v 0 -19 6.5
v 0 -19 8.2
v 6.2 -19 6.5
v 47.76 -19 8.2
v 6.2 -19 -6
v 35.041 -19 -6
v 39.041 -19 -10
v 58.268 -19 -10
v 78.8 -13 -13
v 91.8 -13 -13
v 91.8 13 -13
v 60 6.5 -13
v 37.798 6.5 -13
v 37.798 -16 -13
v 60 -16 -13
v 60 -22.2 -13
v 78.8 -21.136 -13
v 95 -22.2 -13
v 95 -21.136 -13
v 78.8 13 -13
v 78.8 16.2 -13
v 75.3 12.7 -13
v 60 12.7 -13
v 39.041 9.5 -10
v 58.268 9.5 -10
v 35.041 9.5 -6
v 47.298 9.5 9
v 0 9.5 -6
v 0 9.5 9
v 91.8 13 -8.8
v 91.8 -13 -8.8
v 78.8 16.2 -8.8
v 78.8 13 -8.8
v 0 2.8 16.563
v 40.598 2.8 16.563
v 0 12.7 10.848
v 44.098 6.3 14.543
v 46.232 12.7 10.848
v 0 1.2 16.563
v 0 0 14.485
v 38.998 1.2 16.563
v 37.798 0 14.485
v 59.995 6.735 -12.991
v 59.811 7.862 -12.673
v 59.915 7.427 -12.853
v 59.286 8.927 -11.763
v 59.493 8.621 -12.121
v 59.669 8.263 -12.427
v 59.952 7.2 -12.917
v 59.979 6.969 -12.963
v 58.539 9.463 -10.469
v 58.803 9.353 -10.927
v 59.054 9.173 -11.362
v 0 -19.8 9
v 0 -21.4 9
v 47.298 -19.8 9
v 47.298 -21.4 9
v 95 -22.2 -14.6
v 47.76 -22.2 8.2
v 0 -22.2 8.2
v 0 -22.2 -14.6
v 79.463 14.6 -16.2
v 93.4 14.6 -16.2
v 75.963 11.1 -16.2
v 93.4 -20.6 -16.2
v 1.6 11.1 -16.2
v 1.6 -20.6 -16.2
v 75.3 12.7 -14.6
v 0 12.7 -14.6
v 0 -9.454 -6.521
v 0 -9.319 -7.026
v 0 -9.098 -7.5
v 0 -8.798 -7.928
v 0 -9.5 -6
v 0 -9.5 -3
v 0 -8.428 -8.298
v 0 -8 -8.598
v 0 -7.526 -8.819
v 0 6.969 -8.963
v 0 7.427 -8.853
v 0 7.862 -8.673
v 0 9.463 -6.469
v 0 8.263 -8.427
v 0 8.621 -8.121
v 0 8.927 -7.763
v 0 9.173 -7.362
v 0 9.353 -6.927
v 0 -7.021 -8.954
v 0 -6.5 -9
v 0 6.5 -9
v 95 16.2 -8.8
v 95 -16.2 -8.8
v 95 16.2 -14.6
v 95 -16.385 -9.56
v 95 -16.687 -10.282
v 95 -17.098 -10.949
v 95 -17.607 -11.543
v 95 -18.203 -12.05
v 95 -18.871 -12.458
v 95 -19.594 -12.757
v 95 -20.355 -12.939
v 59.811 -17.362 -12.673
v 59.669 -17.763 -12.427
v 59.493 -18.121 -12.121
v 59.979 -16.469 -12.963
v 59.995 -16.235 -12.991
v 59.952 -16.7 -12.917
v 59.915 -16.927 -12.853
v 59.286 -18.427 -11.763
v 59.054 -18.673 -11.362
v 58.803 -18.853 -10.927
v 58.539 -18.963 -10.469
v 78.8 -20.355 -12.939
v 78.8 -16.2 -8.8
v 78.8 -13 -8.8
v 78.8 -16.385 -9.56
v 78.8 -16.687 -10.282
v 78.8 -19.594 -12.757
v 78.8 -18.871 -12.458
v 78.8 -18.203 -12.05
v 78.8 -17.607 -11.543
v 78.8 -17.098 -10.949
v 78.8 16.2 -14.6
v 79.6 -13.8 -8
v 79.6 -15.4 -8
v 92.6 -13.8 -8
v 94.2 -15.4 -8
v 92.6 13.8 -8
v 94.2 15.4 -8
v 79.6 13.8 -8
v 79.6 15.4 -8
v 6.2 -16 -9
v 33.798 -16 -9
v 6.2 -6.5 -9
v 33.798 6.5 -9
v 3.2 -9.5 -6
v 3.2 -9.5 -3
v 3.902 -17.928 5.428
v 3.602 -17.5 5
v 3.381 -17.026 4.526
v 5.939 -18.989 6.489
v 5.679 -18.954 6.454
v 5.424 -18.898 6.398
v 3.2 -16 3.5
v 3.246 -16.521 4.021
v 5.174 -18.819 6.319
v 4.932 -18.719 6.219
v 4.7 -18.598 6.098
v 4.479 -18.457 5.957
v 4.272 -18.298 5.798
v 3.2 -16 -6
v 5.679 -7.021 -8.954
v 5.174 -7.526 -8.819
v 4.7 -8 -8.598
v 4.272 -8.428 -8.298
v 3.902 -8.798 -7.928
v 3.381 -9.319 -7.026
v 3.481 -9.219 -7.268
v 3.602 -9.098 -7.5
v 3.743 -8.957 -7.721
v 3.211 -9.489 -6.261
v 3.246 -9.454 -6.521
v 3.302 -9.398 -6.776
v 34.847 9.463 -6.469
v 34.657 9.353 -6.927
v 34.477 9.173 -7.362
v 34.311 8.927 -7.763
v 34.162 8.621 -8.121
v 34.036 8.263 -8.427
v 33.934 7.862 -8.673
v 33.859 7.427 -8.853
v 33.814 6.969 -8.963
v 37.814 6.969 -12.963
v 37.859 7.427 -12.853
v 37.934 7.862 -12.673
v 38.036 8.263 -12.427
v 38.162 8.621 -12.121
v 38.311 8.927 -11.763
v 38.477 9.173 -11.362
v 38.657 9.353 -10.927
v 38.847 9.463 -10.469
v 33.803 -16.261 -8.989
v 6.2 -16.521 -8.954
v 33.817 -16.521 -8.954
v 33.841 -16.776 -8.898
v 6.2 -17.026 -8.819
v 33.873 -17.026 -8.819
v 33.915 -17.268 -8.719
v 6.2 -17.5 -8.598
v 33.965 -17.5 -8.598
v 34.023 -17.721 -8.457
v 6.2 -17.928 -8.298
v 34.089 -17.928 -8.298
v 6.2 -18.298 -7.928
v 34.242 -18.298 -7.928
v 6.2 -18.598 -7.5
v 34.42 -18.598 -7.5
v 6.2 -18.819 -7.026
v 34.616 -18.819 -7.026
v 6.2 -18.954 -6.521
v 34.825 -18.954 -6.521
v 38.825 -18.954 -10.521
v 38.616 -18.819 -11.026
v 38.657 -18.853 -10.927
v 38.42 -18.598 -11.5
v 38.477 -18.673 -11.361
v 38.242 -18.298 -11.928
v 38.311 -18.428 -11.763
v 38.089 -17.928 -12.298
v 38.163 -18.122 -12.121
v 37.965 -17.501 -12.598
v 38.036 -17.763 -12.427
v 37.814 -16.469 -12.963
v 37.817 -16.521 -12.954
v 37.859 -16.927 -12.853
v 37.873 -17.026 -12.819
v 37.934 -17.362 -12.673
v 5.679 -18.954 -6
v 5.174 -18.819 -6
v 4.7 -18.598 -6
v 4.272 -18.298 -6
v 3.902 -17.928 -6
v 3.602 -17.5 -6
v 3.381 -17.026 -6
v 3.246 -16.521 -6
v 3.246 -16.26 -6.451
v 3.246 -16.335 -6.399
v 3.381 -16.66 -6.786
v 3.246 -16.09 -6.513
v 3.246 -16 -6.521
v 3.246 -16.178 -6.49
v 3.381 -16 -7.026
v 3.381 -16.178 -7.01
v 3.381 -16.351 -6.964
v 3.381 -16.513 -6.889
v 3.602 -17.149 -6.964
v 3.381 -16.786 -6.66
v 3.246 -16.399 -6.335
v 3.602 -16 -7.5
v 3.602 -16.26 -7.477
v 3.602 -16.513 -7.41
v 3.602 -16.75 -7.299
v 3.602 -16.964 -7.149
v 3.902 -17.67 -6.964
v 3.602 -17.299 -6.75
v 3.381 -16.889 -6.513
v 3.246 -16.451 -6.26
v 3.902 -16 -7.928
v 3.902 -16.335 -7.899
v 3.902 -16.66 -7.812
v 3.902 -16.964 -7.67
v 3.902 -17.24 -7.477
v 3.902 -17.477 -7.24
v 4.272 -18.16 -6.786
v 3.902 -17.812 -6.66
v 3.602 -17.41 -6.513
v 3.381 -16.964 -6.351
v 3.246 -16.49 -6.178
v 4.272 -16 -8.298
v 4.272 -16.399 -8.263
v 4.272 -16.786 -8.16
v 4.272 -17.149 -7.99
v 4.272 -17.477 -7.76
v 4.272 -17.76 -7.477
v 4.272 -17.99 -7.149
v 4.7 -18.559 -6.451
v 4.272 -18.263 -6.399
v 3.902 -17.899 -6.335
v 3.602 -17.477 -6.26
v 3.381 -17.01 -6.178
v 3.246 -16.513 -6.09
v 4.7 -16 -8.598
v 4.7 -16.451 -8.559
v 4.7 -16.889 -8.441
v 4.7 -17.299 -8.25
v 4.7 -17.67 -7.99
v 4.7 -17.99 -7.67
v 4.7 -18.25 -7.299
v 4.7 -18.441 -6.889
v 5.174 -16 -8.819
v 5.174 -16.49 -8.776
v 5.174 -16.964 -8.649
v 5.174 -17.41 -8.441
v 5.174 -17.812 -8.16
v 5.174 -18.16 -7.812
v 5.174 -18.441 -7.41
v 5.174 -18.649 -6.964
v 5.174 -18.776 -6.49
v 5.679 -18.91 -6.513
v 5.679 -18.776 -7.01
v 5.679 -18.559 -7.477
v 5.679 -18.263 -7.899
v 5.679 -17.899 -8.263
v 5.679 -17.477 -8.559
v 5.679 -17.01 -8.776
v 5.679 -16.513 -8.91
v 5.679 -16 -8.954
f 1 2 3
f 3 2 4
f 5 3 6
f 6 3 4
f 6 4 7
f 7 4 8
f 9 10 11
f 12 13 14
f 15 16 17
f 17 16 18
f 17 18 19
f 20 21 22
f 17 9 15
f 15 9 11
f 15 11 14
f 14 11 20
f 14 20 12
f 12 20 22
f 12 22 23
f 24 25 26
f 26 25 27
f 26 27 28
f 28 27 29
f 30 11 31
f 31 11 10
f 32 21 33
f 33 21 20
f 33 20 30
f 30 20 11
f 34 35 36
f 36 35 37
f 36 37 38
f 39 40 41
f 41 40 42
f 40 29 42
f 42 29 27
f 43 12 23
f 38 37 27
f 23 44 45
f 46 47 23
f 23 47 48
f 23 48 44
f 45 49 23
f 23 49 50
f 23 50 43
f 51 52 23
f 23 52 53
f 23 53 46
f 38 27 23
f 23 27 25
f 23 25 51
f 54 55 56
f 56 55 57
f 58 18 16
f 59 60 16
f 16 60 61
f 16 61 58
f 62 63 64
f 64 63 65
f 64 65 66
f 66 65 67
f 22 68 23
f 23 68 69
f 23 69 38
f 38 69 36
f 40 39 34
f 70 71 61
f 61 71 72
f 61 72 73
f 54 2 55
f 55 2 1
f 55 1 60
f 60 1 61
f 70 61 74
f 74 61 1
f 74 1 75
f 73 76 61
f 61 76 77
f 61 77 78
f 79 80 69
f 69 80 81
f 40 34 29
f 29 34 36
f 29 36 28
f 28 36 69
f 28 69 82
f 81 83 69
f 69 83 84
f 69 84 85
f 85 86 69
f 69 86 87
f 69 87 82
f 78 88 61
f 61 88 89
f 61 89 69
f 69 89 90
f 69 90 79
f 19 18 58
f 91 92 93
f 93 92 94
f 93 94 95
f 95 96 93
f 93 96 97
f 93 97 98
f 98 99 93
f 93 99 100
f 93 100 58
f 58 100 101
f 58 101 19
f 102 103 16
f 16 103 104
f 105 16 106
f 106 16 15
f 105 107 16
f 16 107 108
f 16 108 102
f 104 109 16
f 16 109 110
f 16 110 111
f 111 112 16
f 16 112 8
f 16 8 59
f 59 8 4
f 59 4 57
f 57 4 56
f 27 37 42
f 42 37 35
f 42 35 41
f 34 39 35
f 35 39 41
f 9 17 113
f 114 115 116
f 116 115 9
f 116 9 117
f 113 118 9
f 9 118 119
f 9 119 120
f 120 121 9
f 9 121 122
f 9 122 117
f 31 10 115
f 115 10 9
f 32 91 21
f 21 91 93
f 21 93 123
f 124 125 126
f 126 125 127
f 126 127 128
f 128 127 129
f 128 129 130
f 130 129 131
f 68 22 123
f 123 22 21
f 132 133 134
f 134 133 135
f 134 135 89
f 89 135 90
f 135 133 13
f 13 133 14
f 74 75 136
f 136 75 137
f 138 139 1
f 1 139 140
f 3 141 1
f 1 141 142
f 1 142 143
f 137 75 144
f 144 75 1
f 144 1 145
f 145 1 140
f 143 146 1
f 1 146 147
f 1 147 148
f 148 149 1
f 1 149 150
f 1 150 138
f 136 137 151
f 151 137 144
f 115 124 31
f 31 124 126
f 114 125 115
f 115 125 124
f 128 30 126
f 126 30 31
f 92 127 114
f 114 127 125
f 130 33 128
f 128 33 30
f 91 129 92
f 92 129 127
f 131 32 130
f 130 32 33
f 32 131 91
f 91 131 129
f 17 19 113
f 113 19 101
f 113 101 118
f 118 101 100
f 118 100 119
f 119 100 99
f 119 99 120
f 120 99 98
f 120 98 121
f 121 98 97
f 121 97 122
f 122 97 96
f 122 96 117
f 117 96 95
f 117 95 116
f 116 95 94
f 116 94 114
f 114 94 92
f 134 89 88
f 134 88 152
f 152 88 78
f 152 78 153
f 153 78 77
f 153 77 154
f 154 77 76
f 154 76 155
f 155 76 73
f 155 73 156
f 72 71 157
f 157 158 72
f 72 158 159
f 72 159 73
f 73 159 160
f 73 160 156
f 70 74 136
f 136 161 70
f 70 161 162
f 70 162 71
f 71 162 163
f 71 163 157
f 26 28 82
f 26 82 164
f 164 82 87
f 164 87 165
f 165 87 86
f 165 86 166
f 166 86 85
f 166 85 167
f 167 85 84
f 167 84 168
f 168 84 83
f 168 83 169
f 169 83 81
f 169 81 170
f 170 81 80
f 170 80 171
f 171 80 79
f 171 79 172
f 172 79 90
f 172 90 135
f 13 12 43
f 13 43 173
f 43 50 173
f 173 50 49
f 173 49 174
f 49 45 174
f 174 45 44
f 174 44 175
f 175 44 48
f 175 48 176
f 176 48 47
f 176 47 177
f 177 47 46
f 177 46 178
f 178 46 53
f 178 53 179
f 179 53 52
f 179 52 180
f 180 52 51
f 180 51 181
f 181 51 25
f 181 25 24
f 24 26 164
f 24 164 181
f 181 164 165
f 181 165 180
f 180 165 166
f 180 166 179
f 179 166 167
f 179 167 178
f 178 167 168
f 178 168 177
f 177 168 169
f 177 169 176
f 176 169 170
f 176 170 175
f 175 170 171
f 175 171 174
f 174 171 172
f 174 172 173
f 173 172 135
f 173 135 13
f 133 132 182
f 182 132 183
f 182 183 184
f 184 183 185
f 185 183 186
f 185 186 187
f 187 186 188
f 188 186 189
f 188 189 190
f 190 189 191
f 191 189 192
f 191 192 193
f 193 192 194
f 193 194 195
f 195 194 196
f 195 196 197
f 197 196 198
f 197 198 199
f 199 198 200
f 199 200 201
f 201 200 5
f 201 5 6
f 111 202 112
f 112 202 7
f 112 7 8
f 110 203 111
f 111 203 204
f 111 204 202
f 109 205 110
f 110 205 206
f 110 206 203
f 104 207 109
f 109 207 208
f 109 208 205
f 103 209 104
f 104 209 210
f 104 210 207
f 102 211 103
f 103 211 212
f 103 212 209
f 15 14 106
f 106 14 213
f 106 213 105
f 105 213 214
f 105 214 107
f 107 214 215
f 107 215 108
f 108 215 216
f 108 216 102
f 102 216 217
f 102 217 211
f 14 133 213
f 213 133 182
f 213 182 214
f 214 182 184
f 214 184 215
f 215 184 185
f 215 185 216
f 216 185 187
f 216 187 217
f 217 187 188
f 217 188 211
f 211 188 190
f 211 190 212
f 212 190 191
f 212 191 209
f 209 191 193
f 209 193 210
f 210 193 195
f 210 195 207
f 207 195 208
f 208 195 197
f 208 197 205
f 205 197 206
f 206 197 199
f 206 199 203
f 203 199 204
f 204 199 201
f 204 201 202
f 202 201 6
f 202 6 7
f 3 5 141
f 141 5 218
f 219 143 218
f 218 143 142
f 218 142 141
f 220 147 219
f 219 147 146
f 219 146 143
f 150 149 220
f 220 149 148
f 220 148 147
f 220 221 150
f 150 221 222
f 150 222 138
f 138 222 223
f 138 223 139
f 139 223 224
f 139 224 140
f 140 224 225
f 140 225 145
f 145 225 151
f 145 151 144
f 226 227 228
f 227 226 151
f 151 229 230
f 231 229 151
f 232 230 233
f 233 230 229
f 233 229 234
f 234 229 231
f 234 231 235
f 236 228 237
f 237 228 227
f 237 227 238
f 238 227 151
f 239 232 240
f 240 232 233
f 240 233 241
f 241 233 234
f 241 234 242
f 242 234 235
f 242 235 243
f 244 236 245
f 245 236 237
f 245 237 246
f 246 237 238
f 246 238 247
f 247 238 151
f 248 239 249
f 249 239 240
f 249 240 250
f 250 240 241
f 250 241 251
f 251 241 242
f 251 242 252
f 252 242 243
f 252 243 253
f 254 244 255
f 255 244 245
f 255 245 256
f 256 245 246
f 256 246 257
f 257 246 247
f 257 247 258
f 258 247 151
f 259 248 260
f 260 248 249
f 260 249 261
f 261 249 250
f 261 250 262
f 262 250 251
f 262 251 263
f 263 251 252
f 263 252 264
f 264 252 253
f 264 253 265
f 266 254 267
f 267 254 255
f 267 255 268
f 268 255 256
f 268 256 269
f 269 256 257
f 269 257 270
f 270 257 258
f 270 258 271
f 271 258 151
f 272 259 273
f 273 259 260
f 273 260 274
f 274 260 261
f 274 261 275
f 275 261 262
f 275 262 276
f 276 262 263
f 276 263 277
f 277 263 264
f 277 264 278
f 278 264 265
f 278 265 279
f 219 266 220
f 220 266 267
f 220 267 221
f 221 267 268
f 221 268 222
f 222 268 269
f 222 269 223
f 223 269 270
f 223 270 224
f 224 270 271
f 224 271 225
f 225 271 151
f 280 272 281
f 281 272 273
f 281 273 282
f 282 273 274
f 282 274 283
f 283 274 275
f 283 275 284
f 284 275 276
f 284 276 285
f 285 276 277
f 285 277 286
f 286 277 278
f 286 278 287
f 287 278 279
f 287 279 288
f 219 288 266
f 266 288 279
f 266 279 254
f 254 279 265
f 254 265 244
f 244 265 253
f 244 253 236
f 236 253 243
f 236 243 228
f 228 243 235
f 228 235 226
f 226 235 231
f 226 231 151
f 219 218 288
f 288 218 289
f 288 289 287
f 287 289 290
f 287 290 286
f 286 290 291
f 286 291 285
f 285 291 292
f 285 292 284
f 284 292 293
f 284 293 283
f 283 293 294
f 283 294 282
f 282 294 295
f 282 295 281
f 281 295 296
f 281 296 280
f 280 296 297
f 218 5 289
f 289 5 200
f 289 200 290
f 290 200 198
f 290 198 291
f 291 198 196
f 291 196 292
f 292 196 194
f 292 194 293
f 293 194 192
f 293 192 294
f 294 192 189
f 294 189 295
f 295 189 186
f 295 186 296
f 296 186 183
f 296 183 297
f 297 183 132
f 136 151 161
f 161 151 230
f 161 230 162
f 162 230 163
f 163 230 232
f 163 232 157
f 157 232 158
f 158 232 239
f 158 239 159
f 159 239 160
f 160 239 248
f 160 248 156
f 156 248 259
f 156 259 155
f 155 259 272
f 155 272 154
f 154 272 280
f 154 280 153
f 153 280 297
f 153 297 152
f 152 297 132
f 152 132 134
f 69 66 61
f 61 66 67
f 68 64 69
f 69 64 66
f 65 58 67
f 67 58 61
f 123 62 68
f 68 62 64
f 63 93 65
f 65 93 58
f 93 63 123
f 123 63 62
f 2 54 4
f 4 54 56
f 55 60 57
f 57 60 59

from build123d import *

# Parameters (mm, degrees)
BOSS_EXTRUDE1_DEPTH             = 60
BOSS_EXTRUDE2_DEPTH             = 35
CUT_EXTRUDE1_DEPTH              = 103.668316888
CUT_EXTRUDE2_DEPTH              = 113.568195388
CUT_EXTRUDE3_DEPTH              = 112.060037393
BOSS_EXTRUDE3_DEPTH             = 5
BOSS_EXTRUDE3_DIRECTION_2_REACH = 115.625
BOSS_EXTRUDE4_DEPTH             = 3.2
BOSS_EXTRUDE5_DEPTH             = 28.5
BOSS_EXTRUDE6_DEPTH             = 3.2
SKETCH8_W                       = 25.2
SKETCH8_H                       = 32.67766953
CUT_EXTRUDE4_DEPTH              = 111.954500313
CHAMFER1_SIZE                   = 0.8
FILLET1_R                       = 5
FILLET2_R                       = 3
FILLET3_R                       = 3
CHAMFER2_SIZE                   = 1.6
CHAMFER3_SIZE                   = 0.8


with BuildPart() as part:
    # Sketch1 → Boss-Extrude1 (new body)
    with BuildSketch(Plane(origin=(0, 0, 0), x_dir=(0, 0, -1), z_dir=(1, 0, 0))):
        Polygon((-9, 9.5), (13, 9.5), (13, -19), (-9, -19), (-9, -22.2), (13, -22.2), (13, -37.2), (-3.07766953, -53.27766953), (-1.47766953, -54.87766953), (16.2, -37.2), (16.2, 12.7), (-10.847520861, 12.7), (-17.256108849, 1.6), (-14.484827557, 0), align=None)
    extrude(amount=BOSS_EXTRUDE1_DEPTH)

    # Sketch2 → Boss-Extrude2 (add)
    with BuildSketch(Plane(origin=(60, 0, 0), x_dir=(0, 0, -1), z_dir=(1, 0, 0))):
        Polygon((-3.07766953, -53.27766953), (-1.47766953, -54.87766953), (16.2, -37.2), (16.2, 12.7), (13, 12.7), (13, -37.2), align=None)
    extrude(amount=BOSS_EXTRUDE2_DEPTH)

    # Sketch3 → Cut-Extrude1 (cut, through all)
    with BuildSketch(Plane.XZ.offset(22.2)):
        Polygon((60, -13), (42.531627411, 17.256108849), (60, 17.256108849), align=None)
    extrude(amount=-CUT_EXTRUDE1_DEPTH, mode=Mode.SUBTRACT)

    # Sketch4 → Cut-Extrude2 (cut, through all)
    with BuildSketch(Plane.XY.offset(9)):
        Polygon((47.298294078, 9.5), (37.798294078, 0), (47.298294078, 0), align=None)
    extrude(amount=CUT_EXTRUDE2_DEPTH, mode=Mode.SUBTRACT)

    # Sketch5 → Cut-Extrude3 (cut, through all)
    with BuildSketch(Plane.ZY):
        Polygon((16.563288526, 2.8), (16.563288526, 1.2), (17.256108849, 1.6), align=None)
        Polygon((2.27766953, -52.47766953), (2.27766953, -54.07766953), (3.07766953, -53.27766953), align=None)
    extrude(amount=-CUT_EXTRUDE3_DEPTH, mode=Mode.SUBTRACT)

    # Sketch6 → Boss-Extrude3 (add)
    with BuildSketch(Plane.XY.offset(-13)):
        Polygon((78.8, 13), (91.8, 13), (91.8, -13), (78.8, -13), (78.8, -16.2), (95, -16.2), (95, 16.2), (78.8, 16.2), align=None)
    extrude(amount=BOSS_EXTRUDE3_DEPTH)

    # Boss-Extrude3 direction 2: up to this face of the body (flat: up to its plane)
    boss_extrude3_direction_2_end = Plane(part.part.faces().sort_by_distance((47.5, -12.25, -16.2))[0])
    # Sketch6 → Boss-Extrude3 direction 2 (add, up to the picked face)
    with BuildSketch(Plane.XY.offset(-13), mode=Mode.PRIVATE) as boss_extrude3_direction_2_sk1:
        Polygon((78.8, 13), (91.8, 13), (91.8, -13), (78.8, -13), (78.8, -16.2), (95, -16.2), (95, 16.2), (78.8, 16.2), align=None)
    boss_extrude3_direction_2_tool1 = split(extrude(boss_extrude3_direction_2_sk1.sketch, amount=-BOSS_EXTRUDE3_DIRECTION_2_REACH, mode=Mode.PRIVATE), bisect_by=boss_extrude3_direction_2_end, keep=Keep.BOTH, mode=Mode.PRIVATE)
    add(boss_extrude3_direction_2_tool1.solids().sort_by(Axis((85.3, 13.362243, -13), (0, 0, -1)))[0])

    # Sketch7 → Boss-Extrude4 (add)
    with BuildSketch(Plane(origin=(0, 0, -16.2), x_dir=(-1, 0, 0), z_dir=(0, 0, -1))):
        Polygon((-95, 16.2), (-78.8, 16.2), (-75.3, 12.7), (-95, 12.7), align=None)
    extrude(amount=-BOSS_EXTRUDE4_DEPTH)

    # Sketch9 → Boss-Extrude5 (add)
    with BuildSketch(Plane(origin=(0, -19, 0), x_dir=(1, 0, 0), z_dir=(0, 1, 0))):
        Polygon((33.798294078, 9), (37.798294078, 13), (0, 13), (0, 9), align=None)
    extrude(amount=BOSS_EXTRUDE5_DEPTH)

    # Sketch10 → Boss-Extrude6 (add)
    with BuildSketch(Plane.ZY):
        Polygon((6.5, -19), (-3, -9.5), (-9, -9.5), (-9, -19), align=None)
    extrude(amount=-BOSS_EXTRUDE6_DEPTH)

    # Sketch8 → Cut-Extrude4 (cut, through all)
    with BuildSketch(Plane.ZY):
        with Locations((-3.6, -38.538834765)):
            Rectangle(SKETCH8_W, SKETCH8_H)
    extrude(amount=-CUT_EXTRUDE4_DEPTH, mode=Mode.SUBTRACT)

    # Chamfer1
    chamfer1_edges = [part.edges().sort_by_distance(p)[0] for p in [
        (78.8, 14.6, -8),
        (85.3, 13, -8),
        (91.8, 0, -8),
        (85.3, -13, -8),
        (78.8, -14.6, -8),
        (86.9, -16.2, -8),
        (95, 0, -8),
        (86.9, 16.2, -8),
    ]]
    chamfer(chamfer1_edges, length=CHAMFER1_SIZE)

    # Fillet1
    # the kernel refuses this fillet: 5 mm, written as the material it adds along each edge
    with BuildSketch(Plane(origin=(78.8, -16.2, -13), x_dir=(0, 0, 1), z_dir=(1, 0, 0))) as fillet1_piece_1:
        with BuildLine():
            CenterArc((5, 4.935585072), FILLET1_R, 180, 80.793103779)
            Line((0, 4.935585072), (0, 0))
            Line((0, 0), (4.2, 0))
        make_face()
    extrude(amount=16.2)

    # Fillet2
    fillet2_edges = [part.edges().sort_by_distance(p)[0] for p in [
        (35.798294078, -19, -11),
        (16.899147039, 9.5, -9),
        (35.798294078, 9.5, -11),
        (18.499147039, -19, -9),
        (1.6, -9.5, -9),
        (48.899147039, 9.5, -13),
        (48.899147039, -19, -13),
    ]]
    fillet(fillet2_edges, radius=FILLET2_R)

    # Fillet3
    fillet3_edges = [part.edges().sort_by_distance(p)[0] for p in [
        (3.2, -19, 0.25),
        (3.2, -11.25, -9),
        (3.2, -18.121320344, -8.121320344),
    ]]
    fillet(fillet3_edges, radius=FILLET3_R)

    # Chamfer2
    chamfer2_edges = [part.edges().sort_by_distance(p)[0] for p in [
        (86.9, 16.2, -16.2),
        (37.65, 12.7, -16.2),
        (77.05, 14.45, -16.2),
        (95, -3, -16.2),
        (0, -4.75, -16.2),
        (47.5, -22.2, -16.2),
    ]]
    chamfer(chamfer2_edges, length=CHAMFER2_SIZE)

    # Chamfer3
    chamfer3_edges = [part.edges().sort_by_distance(p)[0] for p in [
        (23.649147039, -22.2, 9),
        (23.649147039, -19, 9),
    ]]
    chamfer(chamfer3_edges, length=CHAMFER3_SIZE)


solid = part.part
